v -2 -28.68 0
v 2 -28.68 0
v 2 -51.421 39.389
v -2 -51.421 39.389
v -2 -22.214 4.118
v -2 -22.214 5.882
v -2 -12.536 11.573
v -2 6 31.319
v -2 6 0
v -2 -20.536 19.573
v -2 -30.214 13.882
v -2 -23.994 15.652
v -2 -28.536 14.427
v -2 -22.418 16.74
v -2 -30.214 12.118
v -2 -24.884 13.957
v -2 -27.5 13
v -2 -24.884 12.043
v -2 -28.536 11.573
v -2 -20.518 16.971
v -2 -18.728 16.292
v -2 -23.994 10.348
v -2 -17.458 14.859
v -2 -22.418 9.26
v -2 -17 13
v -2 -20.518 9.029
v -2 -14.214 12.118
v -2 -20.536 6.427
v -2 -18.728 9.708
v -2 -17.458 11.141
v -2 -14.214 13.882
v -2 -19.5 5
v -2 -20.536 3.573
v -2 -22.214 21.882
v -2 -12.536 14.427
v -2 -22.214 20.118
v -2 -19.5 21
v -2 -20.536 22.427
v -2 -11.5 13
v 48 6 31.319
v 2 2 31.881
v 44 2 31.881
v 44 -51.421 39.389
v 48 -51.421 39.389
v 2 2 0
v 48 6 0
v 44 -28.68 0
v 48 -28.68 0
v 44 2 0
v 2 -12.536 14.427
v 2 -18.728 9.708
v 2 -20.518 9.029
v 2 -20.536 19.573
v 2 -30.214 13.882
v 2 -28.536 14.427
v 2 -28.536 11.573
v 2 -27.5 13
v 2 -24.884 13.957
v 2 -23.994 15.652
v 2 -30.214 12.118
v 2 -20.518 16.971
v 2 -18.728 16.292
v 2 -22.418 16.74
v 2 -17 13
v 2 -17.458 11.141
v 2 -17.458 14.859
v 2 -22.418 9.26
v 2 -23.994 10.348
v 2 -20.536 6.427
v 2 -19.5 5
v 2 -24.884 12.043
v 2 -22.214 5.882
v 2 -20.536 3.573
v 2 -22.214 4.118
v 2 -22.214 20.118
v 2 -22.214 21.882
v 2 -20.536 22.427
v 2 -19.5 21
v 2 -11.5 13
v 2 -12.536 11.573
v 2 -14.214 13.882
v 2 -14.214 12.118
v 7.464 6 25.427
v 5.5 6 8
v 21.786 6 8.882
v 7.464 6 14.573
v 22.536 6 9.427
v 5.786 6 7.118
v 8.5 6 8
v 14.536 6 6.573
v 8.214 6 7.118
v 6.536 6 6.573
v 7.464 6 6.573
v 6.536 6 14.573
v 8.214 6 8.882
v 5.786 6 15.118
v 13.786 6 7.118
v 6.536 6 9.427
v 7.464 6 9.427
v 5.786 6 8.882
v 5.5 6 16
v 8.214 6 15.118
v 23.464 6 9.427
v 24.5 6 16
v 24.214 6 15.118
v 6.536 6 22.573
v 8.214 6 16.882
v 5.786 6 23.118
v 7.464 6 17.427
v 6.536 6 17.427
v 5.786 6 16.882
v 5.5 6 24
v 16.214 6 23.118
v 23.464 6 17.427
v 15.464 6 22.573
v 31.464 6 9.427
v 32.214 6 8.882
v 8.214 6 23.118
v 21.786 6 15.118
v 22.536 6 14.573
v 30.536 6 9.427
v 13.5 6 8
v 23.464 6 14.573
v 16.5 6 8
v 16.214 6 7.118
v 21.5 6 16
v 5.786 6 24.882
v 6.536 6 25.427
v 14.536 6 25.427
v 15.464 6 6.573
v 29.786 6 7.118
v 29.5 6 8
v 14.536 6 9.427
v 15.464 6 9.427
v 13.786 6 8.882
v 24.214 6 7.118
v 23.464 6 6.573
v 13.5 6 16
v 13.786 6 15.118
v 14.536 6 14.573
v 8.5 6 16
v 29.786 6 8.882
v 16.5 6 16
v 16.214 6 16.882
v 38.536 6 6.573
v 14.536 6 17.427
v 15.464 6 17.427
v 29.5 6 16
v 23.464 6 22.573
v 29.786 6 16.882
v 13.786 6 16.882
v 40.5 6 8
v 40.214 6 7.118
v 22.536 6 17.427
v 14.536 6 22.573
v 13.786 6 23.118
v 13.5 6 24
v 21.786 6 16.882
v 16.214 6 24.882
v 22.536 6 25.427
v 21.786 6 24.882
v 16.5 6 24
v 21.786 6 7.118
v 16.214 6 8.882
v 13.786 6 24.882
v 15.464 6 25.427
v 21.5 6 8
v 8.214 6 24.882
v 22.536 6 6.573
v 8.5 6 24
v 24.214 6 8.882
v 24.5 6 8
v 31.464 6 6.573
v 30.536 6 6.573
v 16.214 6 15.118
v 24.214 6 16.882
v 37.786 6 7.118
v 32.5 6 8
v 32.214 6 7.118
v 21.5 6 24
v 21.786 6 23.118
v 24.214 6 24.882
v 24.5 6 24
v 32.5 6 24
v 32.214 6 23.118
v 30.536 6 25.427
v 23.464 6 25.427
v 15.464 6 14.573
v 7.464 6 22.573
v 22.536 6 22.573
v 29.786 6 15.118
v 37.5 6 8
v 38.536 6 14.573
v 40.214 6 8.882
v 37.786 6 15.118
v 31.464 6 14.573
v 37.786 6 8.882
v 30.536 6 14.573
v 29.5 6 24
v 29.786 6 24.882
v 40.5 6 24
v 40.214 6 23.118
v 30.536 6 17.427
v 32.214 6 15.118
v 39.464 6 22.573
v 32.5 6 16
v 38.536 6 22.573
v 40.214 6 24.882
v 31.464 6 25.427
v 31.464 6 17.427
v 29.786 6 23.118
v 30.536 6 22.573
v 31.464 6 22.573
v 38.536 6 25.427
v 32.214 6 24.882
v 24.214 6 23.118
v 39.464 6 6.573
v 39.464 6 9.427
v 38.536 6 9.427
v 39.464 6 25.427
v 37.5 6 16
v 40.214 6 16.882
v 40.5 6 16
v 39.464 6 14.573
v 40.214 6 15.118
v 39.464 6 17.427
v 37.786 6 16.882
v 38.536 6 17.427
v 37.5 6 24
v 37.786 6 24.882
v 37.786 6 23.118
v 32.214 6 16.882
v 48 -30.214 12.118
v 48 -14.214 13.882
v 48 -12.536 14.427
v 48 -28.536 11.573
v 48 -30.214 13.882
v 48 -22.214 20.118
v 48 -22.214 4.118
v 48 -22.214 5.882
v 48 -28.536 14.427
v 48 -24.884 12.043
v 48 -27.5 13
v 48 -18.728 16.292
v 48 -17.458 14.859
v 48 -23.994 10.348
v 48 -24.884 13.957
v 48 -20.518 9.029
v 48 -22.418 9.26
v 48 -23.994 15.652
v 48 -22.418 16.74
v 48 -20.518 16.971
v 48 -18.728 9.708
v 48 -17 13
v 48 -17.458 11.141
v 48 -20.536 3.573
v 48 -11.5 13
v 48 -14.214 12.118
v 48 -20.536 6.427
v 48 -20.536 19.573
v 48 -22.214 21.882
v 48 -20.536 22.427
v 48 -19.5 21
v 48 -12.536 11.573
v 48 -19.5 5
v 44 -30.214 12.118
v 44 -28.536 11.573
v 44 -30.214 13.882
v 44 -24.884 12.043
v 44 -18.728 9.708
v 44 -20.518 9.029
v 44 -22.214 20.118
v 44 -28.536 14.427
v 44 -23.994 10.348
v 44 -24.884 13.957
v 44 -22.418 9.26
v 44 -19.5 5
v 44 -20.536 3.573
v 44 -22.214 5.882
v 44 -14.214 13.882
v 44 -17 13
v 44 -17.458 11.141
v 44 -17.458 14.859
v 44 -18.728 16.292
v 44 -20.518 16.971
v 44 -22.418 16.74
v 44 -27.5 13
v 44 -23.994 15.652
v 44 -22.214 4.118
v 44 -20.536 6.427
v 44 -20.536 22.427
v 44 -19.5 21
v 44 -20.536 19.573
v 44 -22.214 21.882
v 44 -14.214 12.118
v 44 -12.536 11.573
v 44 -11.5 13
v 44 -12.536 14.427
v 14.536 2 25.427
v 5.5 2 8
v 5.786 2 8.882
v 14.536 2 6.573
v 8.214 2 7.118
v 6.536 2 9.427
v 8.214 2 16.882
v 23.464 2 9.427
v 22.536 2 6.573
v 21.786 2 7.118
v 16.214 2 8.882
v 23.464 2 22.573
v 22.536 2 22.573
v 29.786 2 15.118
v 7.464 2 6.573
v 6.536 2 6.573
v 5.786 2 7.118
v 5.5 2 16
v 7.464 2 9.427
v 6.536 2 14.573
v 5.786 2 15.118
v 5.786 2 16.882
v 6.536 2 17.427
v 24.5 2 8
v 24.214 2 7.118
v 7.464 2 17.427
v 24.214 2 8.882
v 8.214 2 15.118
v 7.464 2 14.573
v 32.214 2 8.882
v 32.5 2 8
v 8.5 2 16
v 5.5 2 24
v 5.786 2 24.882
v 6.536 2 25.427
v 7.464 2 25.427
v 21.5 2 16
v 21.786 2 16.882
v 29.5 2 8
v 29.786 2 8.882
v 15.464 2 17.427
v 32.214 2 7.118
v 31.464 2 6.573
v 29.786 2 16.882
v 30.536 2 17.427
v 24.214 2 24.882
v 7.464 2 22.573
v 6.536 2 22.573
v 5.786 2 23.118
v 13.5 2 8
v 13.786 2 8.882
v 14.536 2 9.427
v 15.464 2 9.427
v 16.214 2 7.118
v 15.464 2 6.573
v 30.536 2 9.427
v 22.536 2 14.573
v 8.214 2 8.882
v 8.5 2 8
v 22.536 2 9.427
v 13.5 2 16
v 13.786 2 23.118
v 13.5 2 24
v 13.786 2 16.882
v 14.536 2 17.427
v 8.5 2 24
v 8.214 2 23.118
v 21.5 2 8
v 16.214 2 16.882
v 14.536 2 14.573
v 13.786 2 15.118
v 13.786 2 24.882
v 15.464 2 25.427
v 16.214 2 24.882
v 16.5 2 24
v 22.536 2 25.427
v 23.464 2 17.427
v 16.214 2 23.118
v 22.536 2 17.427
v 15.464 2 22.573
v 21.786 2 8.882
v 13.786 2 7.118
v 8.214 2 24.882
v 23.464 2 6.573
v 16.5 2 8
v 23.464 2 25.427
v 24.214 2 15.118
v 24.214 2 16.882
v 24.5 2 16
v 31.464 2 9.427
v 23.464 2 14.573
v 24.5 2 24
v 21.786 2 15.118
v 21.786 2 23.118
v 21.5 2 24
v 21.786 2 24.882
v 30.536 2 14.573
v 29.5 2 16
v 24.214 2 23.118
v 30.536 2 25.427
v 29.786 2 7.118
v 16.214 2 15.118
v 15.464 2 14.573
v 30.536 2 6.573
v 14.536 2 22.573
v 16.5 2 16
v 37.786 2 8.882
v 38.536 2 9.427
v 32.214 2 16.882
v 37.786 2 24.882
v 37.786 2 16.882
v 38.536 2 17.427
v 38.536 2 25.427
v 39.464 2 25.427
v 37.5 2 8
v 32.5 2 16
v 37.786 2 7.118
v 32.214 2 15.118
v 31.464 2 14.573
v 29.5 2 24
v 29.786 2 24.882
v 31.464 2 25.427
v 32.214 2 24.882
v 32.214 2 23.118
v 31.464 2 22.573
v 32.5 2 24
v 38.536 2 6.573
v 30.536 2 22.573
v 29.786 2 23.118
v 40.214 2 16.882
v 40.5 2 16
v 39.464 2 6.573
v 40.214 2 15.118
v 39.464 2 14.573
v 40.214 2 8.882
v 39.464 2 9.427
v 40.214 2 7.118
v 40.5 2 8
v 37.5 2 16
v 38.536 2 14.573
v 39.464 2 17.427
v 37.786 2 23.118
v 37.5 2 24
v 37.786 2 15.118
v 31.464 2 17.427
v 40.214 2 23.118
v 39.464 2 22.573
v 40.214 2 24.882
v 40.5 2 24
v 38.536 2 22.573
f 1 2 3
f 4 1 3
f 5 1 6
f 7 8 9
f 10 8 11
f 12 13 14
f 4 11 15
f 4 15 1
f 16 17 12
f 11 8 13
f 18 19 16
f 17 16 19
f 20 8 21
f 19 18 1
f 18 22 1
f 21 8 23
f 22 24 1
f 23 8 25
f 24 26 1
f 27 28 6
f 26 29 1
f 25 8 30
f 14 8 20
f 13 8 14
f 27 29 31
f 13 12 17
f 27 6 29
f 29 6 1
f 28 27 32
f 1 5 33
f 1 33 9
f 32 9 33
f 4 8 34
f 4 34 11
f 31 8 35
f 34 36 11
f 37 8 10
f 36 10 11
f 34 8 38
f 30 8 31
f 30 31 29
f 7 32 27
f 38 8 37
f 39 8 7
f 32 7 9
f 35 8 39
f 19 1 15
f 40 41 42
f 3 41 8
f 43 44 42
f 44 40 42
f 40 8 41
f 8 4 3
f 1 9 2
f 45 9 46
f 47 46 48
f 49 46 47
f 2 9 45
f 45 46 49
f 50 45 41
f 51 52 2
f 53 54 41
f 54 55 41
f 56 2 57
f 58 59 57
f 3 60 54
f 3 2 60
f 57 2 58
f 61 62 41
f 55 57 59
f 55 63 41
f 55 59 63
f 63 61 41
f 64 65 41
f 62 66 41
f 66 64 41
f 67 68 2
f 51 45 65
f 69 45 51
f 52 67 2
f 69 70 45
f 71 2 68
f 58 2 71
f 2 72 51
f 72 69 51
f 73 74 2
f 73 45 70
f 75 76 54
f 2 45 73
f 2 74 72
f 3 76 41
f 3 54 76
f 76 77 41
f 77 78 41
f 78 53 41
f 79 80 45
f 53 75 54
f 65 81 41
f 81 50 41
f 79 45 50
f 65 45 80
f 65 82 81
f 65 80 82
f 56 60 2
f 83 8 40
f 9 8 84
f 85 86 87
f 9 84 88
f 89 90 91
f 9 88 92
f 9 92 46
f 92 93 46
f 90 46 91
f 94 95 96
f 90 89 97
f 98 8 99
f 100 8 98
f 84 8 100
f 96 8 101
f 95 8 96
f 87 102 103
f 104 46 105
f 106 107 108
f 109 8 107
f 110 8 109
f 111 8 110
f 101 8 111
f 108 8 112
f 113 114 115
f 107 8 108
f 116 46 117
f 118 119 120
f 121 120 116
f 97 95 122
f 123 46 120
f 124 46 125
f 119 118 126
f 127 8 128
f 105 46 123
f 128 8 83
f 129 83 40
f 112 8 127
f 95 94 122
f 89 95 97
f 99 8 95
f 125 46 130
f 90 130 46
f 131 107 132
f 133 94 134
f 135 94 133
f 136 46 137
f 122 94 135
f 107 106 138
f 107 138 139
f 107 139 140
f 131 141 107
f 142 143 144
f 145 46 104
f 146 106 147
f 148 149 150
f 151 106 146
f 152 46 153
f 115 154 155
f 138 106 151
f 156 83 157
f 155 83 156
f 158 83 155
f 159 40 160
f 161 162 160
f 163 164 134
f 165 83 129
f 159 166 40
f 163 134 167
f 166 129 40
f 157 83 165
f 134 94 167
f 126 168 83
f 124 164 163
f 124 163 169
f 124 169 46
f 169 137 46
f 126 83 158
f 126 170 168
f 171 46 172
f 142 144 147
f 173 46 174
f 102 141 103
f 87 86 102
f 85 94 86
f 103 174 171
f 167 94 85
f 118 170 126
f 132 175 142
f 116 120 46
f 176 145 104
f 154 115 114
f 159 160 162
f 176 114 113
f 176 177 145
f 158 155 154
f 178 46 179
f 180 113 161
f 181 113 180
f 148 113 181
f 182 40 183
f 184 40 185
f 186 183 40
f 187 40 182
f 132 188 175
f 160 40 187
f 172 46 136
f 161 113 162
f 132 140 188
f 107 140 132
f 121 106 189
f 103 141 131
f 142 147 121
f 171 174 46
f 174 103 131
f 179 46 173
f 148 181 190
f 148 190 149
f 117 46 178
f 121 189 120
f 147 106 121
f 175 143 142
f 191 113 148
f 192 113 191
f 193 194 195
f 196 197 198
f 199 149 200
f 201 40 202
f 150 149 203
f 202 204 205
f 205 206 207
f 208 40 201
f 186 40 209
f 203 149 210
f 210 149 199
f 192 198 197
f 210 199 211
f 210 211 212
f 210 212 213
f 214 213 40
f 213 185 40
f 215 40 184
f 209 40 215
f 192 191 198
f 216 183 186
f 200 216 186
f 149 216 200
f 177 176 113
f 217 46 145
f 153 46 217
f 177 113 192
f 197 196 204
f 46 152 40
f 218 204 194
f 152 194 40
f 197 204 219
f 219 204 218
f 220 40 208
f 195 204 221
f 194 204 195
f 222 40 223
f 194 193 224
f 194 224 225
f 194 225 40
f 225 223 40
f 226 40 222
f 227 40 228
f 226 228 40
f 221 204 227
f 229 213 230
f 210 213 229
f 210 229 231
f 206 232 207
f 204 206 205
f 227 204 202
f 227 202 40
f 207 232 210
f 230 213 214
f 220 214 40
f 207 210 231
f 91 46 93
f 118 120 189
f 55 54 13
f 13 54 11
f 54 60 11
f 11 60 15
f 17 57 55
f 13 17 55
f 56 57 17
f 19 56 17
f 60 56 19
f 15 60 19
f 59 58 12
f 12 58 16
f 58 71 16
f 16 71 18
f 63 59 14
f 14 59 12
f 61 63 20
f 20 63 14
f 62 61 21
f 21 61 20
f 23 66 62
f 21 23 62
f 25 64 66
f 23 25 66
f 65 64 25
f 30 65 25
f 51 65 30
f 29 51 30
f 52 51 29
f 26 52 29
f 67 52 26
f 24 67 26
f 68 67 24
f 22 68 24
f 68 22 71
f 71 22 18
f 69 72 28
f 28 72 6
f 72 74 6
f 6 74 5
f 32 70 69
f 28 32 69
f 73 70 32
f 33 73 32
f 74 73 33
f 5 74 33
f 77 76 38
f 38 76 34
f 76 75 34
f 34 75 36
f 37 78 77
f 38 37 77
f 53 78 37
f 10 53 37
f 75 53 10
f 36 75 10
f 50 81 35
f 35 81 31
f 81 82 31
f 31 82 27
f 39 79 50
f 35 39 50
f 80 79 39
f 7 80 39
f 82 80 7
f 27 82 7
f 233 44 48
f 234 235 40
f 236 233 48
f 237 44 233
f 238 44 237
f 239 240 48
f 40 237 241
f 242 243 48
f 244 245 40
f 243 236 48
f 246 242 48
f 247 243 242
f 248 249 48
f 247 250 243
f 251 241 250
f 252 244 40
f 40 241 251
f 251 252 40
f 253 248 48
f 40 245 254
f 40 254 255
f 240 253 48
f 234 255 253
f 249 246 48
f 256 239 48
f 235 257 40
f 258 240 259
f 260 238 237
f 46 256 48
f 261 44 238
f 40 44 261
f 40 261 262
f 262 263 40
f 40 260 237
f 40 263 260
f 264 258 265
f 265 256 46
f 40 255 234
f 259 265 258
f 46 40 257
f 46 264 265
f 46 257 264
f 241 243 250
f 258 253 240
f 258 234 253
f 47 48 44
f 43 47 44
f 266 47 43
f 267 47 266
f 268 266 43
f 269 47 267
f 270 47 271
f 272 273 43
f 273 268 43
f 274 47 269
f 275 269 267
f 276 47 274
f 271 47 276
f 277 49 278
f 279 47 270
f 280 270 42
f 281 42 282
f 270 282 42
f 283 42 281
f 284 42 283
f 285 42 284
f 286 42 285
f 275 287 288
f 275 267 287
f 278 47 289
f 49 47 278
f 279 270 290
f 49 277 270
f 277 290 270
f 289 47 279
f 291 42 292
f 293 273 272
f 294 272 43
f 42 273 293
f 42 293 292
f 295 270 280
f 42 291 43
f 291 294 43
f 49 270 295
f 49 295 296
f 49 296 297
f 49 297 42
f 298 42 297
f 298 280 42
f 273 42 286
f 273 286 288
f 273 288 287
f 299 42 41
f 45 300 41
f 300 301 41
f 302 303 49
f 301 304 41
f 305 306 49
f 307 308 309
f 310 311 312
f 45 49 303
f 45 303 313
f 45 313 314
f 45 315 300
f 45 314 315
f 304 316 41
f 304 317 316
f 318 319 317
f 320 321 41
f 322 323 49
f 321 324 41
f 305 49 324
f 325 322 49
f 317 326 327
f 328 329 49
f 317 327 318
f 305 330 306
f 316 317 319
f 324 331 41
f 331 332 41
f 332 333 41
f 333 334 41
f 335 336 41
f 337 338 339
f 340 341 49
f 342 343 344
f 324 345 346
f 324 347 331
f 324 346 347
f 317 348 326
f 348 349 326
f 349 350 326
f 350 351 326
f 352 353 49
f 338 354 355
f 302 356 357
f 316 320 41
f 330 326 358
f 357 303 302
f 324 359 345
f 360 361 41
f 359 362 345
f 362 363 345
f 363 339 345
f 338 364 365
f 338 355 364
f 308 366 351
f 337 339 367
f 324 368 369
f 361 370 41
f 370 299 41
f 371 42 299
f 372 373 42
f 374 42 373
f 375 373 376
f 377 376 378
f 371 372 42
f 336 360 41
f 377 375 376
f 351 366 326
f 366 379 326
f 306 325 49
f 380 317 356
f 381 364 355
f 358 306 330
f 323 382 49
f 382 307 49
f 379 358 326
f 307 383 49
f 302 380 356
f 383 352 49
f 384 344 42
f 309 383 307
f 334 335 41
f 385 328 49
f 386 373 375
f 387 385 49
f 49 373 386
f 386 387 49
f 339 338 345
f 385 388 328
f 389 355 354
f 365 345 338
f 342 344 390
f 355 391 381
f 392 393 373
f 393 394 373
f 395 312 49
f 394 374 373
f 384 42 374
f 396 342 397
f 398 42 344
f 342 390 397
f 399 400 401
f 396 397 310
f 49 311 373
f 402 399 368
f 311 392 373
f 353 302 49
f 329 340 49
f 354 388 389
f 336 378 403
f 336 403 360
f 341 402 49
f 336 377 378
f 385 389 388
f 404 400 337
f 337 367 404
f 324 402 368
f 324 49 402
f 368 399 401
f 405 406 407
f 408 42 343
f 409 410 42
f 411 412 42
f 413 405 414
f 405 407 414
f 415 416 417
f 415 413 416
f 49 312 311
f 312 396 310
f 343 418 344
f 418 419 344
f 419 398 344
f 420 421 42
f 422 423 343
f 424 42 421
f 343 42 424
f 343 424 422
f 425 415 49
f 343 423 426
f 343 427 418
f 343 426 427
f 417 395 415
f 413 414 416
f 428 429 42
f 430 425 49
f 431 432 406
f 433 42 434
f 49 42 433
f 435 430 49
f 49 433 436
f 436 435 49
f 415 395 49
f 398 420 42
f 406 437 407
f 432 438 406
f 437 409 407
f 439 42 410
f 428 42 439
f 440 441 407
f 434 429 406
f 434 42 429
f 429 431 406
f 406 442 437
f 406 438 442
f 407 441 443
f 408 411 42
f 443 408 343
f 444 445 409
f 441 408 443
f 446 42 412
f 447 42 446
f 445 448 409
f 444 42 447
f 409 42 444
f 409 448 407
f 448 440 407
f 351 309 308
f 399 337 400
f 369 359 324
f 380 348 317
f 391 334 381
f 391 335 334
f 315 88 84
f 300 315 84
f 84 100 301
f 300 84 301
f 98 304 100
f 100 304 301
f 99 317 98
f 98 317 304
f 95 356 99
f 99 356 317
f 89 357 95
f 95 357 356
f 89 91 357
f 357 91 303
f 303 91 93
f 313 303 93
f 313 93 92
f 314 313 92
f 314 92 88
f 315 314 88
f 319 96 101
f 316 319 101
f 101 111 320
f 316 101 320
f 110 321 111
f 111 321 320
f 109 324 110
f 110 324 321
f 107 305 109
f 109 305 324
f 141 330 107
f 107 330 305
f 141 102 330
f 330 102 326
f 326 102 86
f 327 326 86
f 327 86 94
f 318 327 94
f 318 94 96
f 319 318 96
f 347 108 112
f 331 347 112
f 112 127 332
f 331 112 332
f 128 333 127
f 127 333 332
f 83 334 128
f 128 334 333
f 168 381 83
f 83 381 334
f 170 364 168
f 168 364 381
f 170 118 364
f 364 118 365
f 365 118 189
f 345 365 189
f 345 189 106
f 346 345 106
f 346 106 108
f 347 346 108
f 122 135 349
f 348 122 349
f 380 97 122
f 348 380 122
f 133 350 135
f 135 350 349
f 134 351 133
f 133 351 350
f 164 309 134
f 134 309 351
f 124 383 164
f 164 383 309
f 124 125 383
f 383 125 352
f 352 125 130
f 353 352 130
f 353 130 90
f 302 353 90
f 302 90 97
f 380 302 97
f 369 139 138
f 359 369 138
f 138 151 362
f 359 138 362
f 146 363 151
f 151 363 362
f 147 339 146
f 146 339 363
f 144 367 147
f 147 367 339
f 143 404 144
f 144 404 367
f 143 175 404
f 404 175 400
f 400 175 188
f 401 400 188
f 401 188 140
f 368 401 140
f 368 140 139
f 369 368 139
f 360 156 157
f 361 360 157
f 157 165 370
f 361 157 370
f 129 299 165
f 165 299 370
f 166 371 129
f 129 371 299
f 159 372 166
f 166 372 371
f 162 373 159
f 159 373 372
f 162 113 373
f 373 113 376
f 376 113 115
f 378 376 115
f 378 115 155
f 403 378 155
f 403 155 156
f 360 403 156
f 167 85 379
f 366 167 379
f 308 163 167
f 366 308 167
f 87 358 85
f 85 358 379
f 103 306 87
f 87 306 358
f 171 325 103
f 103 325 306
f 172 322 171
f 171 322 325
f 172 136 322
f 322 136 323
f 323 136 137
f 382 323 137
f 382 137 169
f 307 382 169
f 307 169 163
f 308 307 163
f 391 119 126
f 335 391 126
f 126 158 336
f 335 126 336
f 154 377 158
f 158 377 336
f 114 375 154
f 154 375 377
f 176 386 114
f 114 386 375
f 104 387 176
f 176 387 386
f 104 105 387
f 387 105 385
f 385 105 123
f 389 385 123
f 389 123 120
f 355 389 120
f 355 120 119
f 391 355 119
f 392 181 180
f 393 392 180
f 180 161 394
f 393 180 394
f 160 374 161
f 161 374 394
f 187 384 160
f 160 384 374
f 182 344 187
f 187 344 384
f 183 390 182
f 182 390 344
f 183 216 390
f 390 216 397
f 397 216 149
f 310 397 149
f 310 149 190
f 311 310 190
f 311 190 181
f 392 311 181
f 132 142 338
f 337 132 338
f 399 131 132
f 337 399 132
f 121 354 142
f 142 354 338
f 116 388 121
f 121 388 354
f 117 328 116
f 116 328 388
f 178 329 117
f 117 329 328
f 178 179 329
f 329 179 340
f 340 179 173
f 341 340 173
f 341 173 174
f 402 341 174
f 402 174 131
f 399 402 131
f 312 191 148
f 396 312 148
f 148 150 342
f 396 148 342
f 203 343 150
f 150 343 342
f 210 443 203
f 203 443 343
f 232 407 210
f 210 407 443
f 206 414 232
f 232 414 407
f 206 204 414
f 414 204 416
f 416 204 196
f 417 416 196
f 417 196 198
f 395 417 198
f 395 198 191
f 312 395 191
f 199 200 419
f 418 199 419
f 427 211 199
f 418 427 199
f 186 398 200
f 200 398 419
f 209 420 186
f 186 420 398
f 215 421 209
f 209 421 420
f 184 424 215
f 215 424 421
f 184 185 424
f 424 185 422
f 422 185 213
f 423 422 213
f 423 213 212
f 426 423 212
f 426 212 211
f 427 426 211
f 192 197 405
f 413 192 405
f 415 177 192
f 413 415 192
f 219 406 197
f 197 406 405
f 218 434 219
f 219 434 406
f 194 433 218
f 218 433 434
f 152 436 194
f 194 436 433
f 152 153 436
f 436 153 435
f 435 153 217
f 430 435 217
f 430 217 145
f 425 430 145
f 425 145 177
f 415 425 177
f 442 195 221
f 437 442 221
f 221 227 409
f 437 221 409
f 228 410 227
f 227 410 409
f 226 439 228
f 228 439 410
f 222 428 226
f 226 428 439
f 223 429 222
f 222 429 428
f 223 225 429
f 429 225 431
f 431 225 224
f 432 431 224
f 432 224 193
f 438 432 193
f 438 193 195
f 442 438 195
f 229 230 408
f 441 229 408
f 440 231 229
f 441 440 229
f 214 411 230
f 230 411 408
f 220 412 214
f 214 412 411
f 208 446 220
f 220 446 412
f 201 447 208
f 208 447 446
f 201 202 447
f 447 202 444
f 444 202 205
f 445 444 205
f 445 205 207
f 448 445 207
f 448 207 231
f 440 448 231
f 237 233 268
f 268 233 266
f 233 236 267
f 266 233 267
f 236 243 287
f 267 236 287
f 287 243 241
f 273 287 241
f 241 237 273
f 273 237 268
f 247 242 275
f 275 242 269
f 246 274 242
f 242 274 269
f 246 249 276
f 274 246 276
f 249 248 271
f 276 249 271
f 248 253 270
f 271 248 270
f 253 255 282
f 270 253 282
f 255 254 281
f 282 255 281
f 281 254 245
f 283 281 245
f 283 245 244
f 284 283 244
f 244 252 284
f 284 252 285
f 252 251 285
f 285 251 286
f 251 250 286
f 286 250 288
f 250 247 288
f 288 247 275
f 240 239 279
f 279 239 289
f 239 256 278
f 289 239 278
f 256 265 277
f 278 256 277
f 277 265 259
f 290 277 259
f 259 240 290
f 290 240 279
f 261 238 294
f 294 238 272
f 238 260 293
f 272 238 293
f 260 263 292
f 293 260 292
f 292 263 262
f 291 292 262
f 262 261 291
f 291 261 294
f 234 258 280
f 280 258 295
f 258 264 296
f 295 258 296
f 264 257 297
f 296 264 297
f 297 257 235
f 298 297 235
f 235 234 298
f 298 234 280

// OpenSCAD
module agujereado(x,y,H){
	union(){
		for(j=[0:y])
		{
			translate([0,j*8,0])
			{
				for(i=[0:x])
				{
					translate([8*i,0,-1])cylinder(r=1.5, h=H, $fn=10);
				}
			}
		}
	}
}

module brazo (){
	rotate([90,0,0])difference(){
		translate([0,0,105])rotate([0,90,0])difference(){
			translate([0,0,-2])cube([61,70,50]);
			//Otro angulo
			translate([9,-20,-5])rotate([0,0,30])cube([25,65,60]);
			translate([0,-2,2])cube([57,65,42]);
			//Eje
			translate([34,13,-4]) cylinder(r=4,h=60);
			//Tornillos del eje
			translate([42,13,-4]) cylinder(r=1.5,h=70);
			translate([26,13,-4]) cylinder(r=1.5,h=70);
			translate([34,21,-4]) cylinder(r=1.5,h=70);
			translate([34,5,-4]) cylinder(r=1.5,h=70);
		}
		translate([15-8,8,0]) agujereado(4,2,100);
	}
}

//Variacion del primer diseño

translate([0,50,0]){
	difference (){
		brazo();
		translate([-70+23,-120,42])rotate([-8,0,0])cube([140,140,140]);
	}
}
